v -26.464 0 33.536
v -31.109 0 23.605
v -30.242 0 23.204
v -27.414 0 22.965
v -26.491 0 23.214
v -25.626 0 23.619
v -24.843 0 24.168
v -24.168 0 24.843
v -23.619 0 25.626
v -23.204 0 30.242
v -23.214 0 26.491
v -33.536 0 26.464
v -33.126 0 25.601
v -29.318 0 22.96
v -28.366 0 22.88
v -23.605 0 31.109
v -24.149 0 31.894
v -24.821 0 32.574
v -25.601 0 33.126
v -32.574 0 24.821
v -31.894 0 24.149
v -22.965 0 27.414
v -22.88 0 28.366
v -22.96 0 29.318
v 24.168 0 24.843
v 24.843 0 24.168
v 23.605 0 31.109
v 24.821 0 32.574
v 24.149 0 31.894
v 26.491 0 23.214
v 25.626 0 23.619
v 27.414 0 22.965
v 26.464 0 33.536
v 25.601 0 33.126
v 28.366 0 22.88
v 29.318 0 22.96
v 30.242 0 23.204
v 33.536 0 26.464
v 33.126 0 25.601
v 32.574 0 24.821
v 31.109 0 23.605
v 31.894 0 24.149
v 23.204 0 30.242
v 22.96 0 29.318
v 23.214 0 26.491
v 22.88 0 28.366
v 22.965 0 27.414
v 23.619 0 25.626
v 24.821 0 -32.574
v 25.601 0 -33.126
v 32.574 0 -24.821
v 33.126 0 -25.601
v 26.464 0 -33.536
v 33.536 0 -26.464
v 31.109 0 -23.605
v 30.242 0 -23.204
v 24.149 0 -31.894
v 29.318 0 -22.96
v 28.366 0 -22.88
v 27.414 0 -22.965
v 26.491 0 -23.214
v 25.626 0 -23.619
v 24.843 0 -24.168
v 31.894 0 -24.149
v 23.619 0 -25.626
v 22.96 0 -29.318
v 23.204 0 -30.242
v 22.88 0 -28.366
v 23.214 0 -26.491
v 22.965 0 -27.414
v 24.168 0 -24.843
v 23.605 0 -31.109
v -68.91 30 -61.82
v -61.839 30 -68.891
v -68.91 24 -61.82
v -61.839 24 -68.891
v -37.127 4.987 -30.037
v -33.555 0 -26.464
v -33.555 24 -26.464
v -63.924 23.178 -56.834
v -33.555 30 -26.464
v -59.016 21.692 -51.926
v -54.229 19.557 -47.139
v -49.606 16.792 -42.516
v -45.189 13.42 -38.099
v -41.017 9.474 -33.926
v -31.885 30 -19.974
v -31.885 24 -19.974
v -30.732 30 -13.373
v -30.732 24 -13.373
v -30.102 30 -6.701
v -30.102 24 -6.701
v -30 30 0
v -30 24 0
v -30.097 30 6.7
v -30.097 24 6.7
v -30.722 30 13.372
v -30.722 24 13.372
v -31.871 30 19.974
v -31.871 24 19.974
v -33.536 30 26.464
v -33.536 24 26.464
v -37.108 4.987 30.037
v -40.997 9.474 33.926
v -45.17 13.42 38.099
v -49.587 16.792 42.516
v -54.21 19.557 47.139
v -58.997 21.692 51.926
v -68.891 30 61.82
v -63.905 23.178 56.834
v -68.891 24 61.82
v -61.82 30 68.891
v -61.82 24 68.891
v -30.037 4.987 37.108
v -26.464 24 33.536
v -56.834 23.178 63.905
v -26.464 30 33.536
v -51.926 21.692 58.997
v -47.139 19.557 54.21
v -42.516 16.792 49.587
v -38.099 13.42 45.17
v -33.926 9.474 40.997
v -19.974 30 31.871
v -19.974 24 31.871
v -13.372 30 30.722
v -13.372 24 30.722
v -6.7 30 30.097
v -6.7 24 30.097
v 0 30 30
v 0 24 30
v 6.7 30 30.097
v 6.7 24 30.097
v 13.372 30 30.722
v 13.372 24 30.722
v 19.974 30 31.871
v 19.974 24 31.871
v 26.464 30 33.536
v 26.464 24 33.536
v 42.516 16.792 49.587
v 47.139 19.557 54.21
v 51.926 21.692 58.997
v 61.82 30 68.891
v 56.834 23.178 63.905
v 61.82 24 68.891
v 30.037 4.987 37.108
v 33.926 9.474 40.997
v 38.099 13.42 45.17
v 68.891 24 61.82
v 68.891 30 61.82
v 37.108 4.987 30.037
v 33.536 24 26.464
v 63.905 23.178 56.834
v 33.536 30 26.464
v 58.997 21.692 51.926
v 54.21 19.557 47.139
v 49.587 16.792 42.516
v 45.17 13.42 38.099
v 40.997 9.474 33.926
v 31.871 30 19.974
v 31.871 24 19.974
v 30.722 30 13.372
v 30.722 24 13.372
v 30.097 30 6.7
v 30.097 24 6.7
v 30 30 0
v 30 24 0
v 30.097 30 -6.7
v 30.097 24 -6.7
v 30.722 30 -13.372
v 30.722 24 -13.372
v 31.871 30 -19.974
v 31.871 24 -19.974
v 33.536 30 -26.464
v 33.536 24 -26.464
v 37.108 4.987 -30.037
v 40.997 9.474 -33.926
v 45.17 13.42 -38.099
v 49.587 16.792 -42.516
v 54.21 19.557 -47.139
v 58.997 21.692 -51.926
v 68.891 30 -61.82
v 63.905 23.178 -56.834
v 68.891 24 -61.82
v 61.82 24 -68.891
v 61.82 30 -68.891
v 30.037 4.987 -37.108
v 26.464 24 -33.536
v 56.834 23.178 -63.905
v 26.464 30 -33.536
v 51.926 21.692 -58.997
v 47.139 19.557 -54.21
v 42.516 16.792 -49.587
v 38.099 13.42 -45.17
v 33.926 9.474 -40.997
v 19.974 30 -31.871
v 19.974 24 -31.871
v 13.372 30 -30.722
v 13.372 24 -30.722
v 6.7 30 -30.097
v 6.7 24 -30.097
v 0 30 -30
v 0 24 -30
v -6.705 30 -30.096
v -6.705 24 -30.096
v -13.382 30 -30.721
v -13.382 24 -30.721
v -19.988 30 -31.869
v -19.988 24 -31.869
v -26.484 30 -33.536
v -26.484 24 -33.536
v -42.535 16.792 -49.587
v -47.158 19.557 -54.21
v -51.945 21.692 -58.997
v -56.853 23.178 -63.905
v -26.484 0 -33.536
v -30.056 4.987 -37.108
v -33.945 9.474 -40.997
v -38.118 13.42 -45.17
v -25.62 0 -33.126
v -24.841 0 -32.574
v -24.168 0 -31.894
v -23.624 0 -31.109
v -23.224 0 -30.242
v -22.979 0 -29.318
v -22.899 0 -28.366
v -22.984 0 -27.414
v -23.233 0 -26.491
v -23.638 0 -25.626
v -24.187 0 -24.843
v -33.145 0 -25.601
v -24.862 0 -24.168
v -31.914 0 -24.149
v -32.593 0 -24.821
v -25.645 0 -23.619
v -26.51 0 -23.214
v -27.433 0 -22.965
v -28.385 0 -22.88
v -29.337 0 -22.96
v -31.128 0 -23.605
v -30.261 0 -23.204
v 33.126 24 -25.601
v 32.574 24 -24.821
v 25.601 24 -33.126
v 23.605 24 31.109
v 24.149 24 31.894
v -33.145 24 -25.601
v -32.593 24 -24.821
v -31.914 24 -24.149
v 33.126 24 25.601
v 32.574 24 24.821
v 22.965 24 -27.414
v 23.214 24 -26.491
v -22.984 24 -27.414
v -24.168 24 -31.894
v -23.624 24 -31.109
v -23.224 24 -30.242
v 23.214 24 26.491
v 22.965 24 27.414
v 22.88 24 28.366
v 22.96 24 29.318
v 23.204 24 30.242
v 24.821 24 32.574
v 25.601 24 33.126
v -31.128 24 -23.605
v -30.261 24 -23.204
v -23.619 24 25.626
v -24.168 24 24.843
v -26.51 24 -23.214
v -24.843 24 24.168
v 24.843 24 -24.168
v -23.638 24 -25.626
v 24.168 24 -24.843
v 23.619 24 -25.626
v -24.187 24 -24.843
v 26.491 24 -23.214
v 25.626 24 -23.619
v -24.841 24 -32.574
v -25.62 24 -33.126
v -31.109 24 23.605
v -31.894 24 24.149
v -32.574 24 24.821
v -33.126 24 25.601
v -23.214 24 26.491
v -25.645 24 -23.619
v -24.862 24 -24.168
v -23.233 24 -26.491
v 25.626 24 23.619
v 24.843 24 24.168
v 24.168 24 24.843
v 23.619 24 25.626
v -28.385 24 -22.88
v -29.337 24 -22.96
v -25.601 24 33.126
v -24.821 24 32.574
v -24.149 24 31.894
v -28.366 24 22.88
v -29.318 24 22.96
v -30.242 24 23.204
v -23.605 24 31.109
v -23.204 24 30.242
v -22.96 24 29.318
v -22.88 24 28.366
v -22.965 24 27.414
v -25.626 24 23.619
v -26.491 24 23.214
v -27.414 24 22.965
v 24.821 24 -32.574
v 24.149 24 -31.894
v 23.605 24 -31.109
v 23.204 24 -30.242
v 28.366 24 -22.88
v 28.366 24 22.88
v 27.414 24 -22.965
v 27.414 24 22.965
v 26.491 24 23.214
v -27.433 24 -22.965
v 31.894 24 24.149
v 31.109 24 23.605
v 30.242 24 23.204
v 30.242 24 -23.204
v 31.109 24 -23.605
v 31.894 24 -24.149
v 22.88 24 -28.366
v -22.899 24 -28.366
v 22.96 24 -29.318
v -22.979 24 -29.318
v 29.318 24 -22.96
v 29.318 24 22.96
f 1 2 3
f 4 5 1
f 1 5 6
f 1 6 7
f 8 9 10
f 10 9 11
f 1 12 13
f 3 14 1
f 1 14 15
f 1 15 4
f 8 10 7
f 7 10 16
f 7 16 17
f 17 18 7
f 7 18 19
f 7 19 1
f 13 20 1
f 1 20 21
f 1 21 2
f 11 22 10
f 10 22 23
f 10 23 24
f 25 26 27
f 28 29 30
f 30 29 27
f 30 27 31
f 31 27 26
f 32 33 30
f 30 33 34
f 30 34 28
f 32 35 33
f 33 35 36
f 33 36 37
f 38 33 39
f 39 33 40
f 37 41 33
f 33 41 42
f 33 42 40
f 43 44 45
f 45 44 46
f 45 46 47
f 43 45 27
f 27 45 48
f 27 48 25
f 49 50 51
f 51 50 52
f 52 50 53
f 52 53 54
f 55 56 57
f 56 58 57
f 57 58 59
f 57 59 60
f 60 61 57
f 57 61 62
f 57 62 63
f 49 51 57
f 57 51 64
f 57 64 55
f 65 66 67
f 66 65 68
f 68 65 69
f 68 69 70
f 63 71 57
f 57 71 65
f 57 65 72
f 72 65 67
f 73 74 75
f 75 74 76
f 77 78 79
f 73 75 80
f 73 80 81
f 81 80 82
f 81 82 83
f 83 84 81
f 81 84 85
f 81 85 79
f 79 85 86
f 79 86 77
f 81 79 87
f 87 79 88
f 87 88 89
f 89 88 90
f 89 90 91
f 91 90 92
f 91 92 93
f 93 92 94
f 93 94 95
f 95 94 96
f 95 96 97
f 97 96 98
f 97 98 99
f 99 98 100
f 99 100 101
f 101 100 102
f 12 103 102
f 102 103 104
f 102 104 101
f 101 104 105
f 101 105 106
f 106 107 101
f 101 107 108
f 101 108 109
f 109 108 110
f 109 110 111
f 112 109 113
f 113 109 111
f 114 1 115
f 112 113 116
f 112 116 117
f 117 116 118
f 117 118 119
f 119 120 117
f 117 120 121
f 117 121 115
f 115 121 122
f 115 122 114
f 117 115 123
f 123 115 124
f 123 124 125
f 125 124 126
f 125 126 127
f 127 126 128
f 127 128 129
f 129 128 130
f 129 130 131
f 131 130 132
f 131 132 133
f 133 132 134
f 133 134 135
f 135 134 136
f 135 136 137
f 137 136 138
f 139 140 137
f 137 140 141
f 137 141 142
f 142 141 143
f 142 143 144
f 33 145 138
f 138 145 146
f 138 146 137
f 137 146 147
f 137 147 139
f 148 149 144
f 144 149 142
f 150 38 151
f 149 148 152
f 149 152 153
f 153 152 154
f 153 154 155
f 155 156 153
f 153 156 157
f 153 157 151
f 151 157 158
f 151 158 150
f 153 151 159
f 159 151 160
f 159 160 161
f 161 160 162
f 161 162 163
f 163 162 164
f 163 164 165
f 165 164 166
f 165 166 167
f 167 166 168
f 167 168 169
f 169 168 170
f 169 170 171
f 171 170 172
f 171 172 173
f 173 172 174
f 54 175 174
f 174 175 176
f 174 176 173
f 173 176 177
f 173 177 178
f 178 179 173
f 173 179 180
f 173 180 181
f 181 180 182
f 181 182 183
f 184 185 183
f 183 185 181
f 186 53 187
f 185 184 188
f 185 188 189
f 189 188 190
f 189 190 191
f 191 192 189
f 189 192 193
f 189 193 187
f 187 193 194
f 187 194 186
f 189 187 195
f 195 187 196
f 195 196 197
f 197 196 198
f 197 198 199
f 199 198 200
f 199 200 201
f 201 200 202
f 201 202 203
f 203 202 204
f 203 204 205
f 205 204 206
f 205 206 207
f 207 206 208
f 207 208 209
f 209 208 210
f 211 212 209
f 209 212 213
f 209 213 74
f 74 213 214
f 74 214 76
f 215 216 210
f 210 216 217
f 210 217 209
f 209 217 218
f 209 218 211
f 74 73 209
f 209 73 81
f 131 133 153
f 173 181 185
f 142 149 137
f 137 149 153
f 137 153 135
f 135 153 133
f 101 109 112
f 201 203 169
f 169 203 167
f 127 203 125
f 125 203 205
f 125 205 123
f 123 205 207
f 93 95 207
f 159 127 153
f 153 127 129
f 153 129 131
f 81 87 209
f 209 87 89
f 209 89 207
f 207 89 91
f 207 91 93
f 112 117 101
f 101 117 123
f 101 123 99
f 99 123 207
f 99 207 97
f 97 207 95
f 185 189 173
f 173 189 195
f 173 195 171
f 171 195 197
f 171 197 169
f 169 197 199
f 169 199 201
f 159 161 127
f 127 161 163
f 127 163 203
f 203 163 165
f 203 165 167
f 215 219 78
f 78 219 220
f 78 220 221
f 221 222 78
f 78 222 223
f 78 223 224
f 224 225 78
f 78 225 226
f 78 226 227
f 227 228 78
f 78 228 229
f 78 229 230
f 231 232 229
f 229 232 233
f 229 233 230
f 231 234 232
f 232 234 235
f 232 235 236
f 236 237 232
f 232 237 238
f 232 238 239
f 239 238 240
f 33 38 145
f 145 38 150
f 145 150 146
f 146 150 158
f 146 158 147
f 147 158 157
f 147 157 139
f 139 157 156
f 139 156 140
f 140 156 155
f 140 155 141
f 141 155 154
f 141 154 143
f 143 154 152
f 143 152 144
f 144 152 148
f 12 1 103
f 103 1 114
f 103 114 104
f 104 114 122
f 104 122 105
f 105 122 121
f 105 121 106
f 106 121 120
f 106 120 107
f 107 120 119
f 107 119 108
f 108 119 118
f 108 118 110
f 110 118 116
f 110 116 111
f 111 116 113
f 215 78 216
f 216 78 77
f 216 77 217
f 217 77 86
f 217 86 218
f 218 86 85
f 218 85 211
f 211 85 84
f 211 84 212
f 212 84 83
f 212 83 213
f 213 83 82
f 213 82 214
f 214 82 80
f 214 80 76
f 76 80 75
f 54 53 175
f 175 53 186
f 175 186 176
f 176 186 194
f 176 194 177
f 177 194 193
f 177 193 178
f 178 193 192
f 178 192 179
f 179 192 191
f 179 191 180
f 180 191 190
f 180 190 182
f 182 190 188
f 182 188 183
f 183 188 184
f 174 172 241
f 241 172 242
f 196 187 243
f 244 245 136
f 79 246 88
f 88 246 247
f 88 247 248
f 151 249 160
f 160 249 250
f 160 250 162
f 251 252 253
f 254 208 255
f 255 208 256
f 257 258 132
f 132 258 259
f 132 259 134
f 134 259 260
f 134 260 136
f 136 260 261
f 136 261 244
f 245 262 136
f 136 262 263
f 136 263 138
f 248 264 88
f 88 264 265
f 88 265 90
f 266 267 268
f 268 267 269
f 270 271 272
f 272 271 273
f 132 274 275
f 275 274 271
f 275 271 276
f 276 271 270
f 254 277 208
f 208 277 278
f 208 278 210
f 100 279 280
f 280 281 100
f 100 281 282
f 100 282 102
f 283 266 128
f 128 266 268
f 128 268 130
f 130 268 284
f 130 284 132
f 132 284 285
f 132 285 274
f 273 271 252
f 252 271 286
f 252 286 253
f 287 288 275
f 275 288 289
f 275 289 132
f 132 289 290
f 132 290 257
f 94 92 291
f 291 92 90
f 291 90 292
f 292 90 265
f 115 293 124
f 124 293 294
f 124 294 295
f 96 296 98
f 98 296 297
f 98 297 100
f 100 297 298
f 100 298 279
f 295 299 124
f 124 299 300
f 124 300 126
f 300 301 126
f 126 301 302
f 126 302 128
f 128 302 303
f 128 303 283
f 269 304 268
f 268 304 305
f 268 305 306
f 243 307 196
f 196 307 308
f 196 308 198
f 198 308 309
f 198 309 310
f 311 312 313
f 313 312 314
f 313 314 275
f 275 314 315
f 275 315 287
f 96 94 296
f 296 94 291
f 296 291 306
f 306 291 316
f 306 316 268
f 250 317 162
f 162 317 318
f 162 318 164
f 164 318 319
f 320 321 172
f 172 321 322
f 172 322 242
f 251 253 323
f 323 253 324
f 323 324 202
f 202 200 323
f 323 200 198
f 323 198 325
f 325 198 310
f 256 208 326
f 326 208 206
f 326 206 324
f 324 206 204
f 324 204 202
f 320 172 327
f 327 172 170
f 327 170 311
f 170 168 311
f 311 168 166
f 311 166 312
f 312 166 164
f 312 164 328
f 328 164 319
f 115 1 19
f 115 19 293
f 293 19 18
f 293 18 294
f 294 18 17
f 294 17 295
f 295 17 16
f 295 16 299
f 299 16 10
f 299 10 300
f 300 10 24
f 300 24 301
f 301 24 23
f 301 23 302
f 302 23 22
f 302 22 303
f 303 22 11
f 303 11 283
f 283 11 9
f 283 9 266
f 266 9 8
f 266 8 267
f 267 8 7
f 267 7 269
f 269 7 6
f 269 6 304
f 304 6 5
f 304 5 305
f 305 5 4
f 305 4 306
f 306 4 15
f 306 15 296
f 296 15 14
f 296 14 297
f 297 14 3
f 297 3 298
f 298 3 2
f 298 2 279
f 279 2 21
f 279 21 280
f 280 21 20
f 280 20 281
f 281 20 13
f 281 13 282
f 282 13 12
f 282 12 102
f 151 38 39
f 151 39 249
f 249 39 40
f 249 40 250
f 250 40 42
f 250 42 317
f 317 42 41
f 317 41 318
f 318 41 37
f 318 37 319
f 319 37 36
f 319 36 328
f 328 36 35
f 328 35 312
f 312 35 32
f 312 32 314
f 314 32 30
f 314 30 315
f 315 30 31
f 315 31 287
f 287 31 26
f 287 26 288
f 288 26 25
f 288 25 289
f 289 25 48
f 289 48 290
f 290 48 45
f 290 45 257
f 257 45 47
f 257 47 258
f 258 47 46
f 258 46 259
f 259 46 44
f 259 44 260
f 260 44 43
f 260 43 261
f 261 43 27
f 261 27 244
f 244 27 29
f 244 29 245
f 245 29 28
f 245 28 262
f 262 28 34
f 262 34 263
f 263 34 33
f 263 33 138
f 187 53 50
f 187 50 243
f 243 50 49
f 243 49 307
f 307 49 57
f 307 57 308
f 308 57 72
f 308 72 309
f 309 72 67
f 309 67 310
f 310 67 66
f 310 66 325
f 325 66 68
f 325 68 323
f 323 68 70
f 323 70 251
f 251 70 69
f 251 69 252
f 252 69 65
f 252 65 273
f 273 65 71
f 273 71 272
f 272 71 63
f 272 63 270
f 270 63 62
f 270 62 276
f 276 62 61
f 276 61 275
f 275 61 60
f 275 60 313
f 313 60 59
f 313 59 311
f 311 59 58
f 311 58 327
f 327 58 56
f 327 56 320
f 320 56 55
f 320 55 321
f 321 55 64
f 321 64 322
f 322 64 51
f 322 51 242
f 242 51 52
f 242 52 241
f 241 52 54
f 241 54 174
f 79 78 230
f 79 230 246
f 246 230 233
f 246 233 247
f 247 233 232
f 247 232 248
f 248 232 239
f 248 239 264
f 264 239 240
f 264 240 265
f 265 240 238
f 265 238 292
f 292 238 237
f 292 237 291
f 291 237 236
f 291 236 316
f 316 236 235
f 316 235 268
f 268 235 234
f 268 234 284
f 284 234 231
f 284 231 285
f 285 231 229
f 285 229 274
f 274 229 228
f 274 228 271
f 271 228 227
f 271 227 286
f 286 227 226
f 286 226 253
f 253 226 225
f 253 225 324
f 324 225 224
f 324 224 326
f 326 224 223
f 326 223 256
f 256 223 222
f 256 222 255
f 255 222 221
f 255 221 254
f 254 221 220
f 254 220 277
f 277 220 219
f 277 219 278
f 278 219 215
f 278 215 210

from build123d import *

# Parameters (mm, degrees)
P_IDAT_VYSUNUT_M2_DEPTH  = 30
ODEBRAT_VYSUNUT_M1_DEPTH = 30
ODEBRAT_VYSUNUT_M2_DEPTH = 30
ODEBRAT_VYSUNUT_M3_DEPTH = 30
ODEBRAT_VYSUNUT_M4_DEPTH = 30
ODEBRAT_VYSUNUT_M5_DEPTH = 24


with BuildPart() as part:
    # Skica2 → Přidat vysunutím2 (new body)
    with BuildSketch(Plane(origin=(0, 0, 0), x_dir=(1, 0, 0), z_dir=(0, 1, 0))):
        with BuildLine():
            Line((-68.909987848, 61.819805153), (-33.554648789, 26.464466094))
            ThreePointArc((-33.554648789, 26.464466094), (-30.731632254, 13.372688112), (-30, 0))
            ThreePointArc((-30, 0), (-30.722175449, -13.37191938), (-33.535533906, -26.464466094))
            Line((-33.535533906, -26.464466094), (-68.890872965, -61.819805153))
            Line((-68.890872965, -61.819805153), (-61.819805153, -68.890872965))
            Line((-61.819805153, -68.890872965), (-26.464466094, -33.535533906))
            ThreePointArc((-26.464466094, -33.535533906), (-13.37191938, -30.722175449), (0, -30))
            ThreePointArc((0, -30), (13.37191938, -30.722175449), (26.464466094, -33.535533906))
            Line((26.464466094, -33.535533906), (61.819805153, -68.890872965))
            Line((61.819805153, -68.890872965), (68.890872965, -61.819805153))
            Line((68.890872965, -61.819805153), (33.535533906, -26.464466094))
            ThreePointArc((33.535533906, -26.464466094), (30.722175449, -13.37191938), (30, 0))
            ThreePointArc((30, 0), (30.722175449, 13.37191938), (33.535533906, 26.464466094))
            Line((33.535533906, 26.464466094), (68.890872965, 61.819805153))
            Line((68.890872965, 61.819805153), (61.819805153, 68.890872965))
            Line((61.819805153, 68.890872965), (26.464466094, 33.535533906))
            ThreePointArc((26.464466094, 33.535533906), (13.37191938, 30.722175449), (0, 30))
            ThreePointArc((0, 30), (-13.381577193, 30.72066838), (-26.483580977, 33.535533906))
            Line((-26.483580977, 33.535533906), (-61.838920037, 68.890872965))
            Line((-61.838920037, 68.890872965), (-68.909987848, 61.819805153))
        make_face()
    extrude(amount=P_IDAT_VYSUNUT_M2_DEPTH)

    # Skica4 → Odebrat vysunutím1 (cut)
    with BuildSketch(Plane(origin=(3.535533906, 0, -3.535533906), x_dir=(-0.707106781186553, 0, -0.7071067811865421), z_dir=(0.7071067811865421, 0, -0.707106781186553))):
        with BuildLine():
            Line((-42.426406871, 0), (-92.426406871, 0))
            Line((-92.426406871, 0), (-92.426406871, 24))
            ThreePointArc((-92.426406871, 24), (-65.126443653, 16.791590037), (-42.426406871, 0))
        make_face()
    extrude(amount=-ODEBRAT_VYSUNUT_M1_DEPTH, mode=Mode.SUBTRACT)

    # Skica5 → Odebrat vysunutím2 (cut)
    with BuildSketch(Plane(origin=(3.535533906, 0, 3.535533906), x_dir=(0.7071067811865475, 0, -0.7071067811865477), z_dir=(0.7071067811865477, 0, 0.7071067811865475))):
        with BuildLine():
            Line((-92.426406871, 0), (-92.426406871, 24))
            ThreePointArc((-92.426406871, 24), (-65.126443653, 16.791590037), (-42.426406871, 0))
            Line((-42.426406871, 0), (-92.426406871, 0))
        make_face()
    extrude(amount=-ODEBRAT_VYSUNUT_M2_DEPTH, mode=Mode.SUBTRACT)

    # Skica6 → Odebrat vysunutím3 (cut)
    with BuildSketch(Plane(origin=(-3.545091348, 0, 3.545091348), x_dir=(0.7071067811865475, 0, 0.7071067811865476), z_dir=(-0.7071067811865476, 0, 0.7071067811865475))):
        with BuildLine():
            Line((-92.439923135, 0), (-92.439923135, 24))
            ThreePointArc((-92.439923135, 24), (-65.139959917, 16.791590037), (-42.439923135, 0))
            Line((-42.439923135, 0), (-92.439923135, 0))
        make_face()
    extrude(amount=-ODEBRAT_VYSUNUT_M3_DEPTH, mode=Mode.SUBTRACT)

    # Skica7 → Odebrat vysunutím4 (cut)
    with BuildSketch(Plane(origin=(-3.535533906, 0, -3.535533906), x_dir=(-0.7071067811865472, 0, 0.7071067811865478), z_dir=(-0.7071067811865478, 0, -0.7071067811865472))):
        with BuildLine():
            Line((-92.426406871, 0), (-92.426406871, 24))
            ThreePointArc((-92.426406871, 24), (-65.126443653, 16.791590037), (-42.426406871, 0))
            Line((-42.426406871, 0), (-92.426406871, 0))
        make_face()
    extrude(amount=-ODEBRAT_VYSUNUT_M4_DEPTH, mode=Mode.SUBTRACT)

    # Skica8 → Odebrat vysunutím5 (cut)
    with BuildSketch(Plane.XZ):
        with BuildLine():
            Line((-33.554648789, -26.464466094), (-33.535533906, 26.464466094))
            ThreePointArc((-33.535533906, 26.464466094), (-24.490727529, 24.490727529), (-26.464466094, 33.535533906))
            Line((-26.464466094, 33.535533906), (26.464466094, 33.535533906))
            ThreePointArc((26.464466094, 33.535533906), (24.490727529, 24.490727529), (33.535533906, 26.464466094))
            Line((33.535533906, 26.464466094), (33.535533906, -26.464466094))
            ThreePointArc((33.535533906, -26.464466094), (24.490727529, -24.490727529), (26.464466094, -33.535533906))
            Line((26.464466094, -33.535533906), (-26.483580977, -33.535533906))
            ThreePointArc((-26.483580977, -33.535533906), (-24.509842412, -24.490727529), (-33.554648789, -26.464466094))
        make_face()
    extrude(amount=-ODEBRAT_VYSUNUT_M5_DEPTH, mode=Mode.SUBTRACT)


solid = part.part
